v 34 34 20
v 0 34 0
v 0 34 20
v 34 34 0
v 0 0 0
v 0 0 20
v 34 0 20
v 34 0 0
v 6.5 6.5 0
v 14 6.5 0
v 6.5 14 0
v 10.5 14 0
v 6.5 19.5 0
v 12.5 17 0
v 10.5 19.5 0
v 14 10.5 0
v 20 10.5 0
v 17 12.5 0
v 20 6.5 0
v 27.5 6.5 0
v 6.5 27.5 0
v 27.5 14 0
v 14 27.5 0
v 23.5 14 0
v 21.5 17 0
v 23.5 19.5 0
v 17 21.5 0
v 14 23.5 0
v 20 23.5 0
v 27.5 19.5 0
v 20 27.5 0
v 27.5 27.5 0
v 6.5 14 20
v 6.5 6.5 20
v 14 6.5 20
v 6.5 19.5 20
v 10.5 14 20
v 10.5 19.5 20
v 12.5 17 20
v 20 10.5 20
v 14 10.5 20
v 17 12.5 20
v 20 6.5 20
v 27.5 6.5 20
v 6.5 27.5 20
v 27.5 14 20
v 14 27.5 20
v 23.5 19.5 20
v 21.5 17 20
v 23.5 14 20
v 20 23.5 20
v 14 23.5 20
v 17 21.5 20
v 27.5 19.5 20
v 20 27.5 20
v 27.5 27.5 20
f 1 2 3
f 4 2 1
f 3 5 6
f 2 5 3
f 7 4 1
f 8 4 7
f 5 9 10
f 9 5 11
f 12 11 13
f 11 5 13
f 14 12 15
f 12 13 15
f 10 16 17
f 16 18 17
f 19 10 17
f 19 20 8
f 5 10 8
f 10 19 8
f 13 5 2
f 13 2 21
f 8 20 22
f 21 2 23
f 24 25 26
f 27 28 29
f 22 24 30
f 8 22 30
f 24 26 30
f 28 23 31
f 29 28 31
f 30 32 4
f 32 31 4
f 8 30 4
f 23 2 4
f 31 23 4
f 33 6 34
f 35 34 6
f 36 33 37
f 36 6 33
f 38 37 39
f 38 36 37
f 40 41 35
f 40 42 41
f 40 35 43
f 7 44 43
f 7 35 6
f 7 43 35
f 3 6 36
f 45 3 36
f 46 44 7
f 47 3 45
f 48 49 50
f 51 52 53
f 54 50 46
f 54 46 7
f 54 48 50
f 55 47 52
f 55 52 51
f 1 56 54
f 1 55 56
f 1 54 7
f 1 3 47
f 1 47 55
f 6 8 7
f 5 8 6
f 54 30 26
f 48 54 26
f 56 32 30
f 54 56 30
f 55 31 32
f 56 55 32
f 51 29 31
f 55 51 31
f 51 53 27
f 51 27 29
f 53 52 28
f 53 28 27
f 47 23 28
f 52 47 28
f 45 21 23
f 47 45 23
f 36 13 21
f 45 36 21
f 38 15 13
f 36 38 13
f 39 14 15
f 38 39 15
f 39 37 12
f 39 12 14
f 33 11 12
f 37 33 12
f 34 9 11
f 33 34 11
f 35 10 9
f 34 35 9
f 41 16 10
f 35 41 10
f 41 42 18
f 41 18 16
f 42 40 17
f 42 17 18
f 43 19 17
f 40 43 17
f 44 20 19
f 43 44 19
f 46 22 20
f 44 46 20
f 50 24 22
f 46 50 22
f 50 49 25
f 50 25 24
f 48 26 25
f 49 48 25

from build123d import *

# Parameters (mm, degrees)
SKETCH_W     = 34
SKETCH_H     = 34
PAD_DEPTH    = 20
POCKET_DEPTH = 20


with BuildPart() as part:
    # Sketch → Pad (new body)
    with BuildSketch(Plane.XY):
        with Locations((17, 17)):
            Rectangle(SKETCH_W, SKETCH_H)
    extrude(amount=PAD_DEPTH)

    # Sketch001 (on Face6 of Pad) → Pocket (cut)
    with BuildSketch(Plane.XY.offset(20)):
        Polygon((6.5, 27.5), (14, 27.5), (14, 23.5), (17, 21.5), (20, 23.5), (20, 27.5), (27.5, 27.5), (27.5, 19.5), (23.5, 19.5), (21.5, 17), (23.5, 14), (27.5, 14), (27.5, 6.5), (20, 6.5), (20, 10.5), (17, 12.5), (14, 10.5), (14, 6.5), (6.5, 6.5), (6.5, 14), (10.5, 14), (12.5, 17), (10.5, 19.5), (6.5, 19.5), align=None)
    extrude(amount=-POCKET_DEPTH, mode=Mode.SUBTRACT)


solid = part.part
